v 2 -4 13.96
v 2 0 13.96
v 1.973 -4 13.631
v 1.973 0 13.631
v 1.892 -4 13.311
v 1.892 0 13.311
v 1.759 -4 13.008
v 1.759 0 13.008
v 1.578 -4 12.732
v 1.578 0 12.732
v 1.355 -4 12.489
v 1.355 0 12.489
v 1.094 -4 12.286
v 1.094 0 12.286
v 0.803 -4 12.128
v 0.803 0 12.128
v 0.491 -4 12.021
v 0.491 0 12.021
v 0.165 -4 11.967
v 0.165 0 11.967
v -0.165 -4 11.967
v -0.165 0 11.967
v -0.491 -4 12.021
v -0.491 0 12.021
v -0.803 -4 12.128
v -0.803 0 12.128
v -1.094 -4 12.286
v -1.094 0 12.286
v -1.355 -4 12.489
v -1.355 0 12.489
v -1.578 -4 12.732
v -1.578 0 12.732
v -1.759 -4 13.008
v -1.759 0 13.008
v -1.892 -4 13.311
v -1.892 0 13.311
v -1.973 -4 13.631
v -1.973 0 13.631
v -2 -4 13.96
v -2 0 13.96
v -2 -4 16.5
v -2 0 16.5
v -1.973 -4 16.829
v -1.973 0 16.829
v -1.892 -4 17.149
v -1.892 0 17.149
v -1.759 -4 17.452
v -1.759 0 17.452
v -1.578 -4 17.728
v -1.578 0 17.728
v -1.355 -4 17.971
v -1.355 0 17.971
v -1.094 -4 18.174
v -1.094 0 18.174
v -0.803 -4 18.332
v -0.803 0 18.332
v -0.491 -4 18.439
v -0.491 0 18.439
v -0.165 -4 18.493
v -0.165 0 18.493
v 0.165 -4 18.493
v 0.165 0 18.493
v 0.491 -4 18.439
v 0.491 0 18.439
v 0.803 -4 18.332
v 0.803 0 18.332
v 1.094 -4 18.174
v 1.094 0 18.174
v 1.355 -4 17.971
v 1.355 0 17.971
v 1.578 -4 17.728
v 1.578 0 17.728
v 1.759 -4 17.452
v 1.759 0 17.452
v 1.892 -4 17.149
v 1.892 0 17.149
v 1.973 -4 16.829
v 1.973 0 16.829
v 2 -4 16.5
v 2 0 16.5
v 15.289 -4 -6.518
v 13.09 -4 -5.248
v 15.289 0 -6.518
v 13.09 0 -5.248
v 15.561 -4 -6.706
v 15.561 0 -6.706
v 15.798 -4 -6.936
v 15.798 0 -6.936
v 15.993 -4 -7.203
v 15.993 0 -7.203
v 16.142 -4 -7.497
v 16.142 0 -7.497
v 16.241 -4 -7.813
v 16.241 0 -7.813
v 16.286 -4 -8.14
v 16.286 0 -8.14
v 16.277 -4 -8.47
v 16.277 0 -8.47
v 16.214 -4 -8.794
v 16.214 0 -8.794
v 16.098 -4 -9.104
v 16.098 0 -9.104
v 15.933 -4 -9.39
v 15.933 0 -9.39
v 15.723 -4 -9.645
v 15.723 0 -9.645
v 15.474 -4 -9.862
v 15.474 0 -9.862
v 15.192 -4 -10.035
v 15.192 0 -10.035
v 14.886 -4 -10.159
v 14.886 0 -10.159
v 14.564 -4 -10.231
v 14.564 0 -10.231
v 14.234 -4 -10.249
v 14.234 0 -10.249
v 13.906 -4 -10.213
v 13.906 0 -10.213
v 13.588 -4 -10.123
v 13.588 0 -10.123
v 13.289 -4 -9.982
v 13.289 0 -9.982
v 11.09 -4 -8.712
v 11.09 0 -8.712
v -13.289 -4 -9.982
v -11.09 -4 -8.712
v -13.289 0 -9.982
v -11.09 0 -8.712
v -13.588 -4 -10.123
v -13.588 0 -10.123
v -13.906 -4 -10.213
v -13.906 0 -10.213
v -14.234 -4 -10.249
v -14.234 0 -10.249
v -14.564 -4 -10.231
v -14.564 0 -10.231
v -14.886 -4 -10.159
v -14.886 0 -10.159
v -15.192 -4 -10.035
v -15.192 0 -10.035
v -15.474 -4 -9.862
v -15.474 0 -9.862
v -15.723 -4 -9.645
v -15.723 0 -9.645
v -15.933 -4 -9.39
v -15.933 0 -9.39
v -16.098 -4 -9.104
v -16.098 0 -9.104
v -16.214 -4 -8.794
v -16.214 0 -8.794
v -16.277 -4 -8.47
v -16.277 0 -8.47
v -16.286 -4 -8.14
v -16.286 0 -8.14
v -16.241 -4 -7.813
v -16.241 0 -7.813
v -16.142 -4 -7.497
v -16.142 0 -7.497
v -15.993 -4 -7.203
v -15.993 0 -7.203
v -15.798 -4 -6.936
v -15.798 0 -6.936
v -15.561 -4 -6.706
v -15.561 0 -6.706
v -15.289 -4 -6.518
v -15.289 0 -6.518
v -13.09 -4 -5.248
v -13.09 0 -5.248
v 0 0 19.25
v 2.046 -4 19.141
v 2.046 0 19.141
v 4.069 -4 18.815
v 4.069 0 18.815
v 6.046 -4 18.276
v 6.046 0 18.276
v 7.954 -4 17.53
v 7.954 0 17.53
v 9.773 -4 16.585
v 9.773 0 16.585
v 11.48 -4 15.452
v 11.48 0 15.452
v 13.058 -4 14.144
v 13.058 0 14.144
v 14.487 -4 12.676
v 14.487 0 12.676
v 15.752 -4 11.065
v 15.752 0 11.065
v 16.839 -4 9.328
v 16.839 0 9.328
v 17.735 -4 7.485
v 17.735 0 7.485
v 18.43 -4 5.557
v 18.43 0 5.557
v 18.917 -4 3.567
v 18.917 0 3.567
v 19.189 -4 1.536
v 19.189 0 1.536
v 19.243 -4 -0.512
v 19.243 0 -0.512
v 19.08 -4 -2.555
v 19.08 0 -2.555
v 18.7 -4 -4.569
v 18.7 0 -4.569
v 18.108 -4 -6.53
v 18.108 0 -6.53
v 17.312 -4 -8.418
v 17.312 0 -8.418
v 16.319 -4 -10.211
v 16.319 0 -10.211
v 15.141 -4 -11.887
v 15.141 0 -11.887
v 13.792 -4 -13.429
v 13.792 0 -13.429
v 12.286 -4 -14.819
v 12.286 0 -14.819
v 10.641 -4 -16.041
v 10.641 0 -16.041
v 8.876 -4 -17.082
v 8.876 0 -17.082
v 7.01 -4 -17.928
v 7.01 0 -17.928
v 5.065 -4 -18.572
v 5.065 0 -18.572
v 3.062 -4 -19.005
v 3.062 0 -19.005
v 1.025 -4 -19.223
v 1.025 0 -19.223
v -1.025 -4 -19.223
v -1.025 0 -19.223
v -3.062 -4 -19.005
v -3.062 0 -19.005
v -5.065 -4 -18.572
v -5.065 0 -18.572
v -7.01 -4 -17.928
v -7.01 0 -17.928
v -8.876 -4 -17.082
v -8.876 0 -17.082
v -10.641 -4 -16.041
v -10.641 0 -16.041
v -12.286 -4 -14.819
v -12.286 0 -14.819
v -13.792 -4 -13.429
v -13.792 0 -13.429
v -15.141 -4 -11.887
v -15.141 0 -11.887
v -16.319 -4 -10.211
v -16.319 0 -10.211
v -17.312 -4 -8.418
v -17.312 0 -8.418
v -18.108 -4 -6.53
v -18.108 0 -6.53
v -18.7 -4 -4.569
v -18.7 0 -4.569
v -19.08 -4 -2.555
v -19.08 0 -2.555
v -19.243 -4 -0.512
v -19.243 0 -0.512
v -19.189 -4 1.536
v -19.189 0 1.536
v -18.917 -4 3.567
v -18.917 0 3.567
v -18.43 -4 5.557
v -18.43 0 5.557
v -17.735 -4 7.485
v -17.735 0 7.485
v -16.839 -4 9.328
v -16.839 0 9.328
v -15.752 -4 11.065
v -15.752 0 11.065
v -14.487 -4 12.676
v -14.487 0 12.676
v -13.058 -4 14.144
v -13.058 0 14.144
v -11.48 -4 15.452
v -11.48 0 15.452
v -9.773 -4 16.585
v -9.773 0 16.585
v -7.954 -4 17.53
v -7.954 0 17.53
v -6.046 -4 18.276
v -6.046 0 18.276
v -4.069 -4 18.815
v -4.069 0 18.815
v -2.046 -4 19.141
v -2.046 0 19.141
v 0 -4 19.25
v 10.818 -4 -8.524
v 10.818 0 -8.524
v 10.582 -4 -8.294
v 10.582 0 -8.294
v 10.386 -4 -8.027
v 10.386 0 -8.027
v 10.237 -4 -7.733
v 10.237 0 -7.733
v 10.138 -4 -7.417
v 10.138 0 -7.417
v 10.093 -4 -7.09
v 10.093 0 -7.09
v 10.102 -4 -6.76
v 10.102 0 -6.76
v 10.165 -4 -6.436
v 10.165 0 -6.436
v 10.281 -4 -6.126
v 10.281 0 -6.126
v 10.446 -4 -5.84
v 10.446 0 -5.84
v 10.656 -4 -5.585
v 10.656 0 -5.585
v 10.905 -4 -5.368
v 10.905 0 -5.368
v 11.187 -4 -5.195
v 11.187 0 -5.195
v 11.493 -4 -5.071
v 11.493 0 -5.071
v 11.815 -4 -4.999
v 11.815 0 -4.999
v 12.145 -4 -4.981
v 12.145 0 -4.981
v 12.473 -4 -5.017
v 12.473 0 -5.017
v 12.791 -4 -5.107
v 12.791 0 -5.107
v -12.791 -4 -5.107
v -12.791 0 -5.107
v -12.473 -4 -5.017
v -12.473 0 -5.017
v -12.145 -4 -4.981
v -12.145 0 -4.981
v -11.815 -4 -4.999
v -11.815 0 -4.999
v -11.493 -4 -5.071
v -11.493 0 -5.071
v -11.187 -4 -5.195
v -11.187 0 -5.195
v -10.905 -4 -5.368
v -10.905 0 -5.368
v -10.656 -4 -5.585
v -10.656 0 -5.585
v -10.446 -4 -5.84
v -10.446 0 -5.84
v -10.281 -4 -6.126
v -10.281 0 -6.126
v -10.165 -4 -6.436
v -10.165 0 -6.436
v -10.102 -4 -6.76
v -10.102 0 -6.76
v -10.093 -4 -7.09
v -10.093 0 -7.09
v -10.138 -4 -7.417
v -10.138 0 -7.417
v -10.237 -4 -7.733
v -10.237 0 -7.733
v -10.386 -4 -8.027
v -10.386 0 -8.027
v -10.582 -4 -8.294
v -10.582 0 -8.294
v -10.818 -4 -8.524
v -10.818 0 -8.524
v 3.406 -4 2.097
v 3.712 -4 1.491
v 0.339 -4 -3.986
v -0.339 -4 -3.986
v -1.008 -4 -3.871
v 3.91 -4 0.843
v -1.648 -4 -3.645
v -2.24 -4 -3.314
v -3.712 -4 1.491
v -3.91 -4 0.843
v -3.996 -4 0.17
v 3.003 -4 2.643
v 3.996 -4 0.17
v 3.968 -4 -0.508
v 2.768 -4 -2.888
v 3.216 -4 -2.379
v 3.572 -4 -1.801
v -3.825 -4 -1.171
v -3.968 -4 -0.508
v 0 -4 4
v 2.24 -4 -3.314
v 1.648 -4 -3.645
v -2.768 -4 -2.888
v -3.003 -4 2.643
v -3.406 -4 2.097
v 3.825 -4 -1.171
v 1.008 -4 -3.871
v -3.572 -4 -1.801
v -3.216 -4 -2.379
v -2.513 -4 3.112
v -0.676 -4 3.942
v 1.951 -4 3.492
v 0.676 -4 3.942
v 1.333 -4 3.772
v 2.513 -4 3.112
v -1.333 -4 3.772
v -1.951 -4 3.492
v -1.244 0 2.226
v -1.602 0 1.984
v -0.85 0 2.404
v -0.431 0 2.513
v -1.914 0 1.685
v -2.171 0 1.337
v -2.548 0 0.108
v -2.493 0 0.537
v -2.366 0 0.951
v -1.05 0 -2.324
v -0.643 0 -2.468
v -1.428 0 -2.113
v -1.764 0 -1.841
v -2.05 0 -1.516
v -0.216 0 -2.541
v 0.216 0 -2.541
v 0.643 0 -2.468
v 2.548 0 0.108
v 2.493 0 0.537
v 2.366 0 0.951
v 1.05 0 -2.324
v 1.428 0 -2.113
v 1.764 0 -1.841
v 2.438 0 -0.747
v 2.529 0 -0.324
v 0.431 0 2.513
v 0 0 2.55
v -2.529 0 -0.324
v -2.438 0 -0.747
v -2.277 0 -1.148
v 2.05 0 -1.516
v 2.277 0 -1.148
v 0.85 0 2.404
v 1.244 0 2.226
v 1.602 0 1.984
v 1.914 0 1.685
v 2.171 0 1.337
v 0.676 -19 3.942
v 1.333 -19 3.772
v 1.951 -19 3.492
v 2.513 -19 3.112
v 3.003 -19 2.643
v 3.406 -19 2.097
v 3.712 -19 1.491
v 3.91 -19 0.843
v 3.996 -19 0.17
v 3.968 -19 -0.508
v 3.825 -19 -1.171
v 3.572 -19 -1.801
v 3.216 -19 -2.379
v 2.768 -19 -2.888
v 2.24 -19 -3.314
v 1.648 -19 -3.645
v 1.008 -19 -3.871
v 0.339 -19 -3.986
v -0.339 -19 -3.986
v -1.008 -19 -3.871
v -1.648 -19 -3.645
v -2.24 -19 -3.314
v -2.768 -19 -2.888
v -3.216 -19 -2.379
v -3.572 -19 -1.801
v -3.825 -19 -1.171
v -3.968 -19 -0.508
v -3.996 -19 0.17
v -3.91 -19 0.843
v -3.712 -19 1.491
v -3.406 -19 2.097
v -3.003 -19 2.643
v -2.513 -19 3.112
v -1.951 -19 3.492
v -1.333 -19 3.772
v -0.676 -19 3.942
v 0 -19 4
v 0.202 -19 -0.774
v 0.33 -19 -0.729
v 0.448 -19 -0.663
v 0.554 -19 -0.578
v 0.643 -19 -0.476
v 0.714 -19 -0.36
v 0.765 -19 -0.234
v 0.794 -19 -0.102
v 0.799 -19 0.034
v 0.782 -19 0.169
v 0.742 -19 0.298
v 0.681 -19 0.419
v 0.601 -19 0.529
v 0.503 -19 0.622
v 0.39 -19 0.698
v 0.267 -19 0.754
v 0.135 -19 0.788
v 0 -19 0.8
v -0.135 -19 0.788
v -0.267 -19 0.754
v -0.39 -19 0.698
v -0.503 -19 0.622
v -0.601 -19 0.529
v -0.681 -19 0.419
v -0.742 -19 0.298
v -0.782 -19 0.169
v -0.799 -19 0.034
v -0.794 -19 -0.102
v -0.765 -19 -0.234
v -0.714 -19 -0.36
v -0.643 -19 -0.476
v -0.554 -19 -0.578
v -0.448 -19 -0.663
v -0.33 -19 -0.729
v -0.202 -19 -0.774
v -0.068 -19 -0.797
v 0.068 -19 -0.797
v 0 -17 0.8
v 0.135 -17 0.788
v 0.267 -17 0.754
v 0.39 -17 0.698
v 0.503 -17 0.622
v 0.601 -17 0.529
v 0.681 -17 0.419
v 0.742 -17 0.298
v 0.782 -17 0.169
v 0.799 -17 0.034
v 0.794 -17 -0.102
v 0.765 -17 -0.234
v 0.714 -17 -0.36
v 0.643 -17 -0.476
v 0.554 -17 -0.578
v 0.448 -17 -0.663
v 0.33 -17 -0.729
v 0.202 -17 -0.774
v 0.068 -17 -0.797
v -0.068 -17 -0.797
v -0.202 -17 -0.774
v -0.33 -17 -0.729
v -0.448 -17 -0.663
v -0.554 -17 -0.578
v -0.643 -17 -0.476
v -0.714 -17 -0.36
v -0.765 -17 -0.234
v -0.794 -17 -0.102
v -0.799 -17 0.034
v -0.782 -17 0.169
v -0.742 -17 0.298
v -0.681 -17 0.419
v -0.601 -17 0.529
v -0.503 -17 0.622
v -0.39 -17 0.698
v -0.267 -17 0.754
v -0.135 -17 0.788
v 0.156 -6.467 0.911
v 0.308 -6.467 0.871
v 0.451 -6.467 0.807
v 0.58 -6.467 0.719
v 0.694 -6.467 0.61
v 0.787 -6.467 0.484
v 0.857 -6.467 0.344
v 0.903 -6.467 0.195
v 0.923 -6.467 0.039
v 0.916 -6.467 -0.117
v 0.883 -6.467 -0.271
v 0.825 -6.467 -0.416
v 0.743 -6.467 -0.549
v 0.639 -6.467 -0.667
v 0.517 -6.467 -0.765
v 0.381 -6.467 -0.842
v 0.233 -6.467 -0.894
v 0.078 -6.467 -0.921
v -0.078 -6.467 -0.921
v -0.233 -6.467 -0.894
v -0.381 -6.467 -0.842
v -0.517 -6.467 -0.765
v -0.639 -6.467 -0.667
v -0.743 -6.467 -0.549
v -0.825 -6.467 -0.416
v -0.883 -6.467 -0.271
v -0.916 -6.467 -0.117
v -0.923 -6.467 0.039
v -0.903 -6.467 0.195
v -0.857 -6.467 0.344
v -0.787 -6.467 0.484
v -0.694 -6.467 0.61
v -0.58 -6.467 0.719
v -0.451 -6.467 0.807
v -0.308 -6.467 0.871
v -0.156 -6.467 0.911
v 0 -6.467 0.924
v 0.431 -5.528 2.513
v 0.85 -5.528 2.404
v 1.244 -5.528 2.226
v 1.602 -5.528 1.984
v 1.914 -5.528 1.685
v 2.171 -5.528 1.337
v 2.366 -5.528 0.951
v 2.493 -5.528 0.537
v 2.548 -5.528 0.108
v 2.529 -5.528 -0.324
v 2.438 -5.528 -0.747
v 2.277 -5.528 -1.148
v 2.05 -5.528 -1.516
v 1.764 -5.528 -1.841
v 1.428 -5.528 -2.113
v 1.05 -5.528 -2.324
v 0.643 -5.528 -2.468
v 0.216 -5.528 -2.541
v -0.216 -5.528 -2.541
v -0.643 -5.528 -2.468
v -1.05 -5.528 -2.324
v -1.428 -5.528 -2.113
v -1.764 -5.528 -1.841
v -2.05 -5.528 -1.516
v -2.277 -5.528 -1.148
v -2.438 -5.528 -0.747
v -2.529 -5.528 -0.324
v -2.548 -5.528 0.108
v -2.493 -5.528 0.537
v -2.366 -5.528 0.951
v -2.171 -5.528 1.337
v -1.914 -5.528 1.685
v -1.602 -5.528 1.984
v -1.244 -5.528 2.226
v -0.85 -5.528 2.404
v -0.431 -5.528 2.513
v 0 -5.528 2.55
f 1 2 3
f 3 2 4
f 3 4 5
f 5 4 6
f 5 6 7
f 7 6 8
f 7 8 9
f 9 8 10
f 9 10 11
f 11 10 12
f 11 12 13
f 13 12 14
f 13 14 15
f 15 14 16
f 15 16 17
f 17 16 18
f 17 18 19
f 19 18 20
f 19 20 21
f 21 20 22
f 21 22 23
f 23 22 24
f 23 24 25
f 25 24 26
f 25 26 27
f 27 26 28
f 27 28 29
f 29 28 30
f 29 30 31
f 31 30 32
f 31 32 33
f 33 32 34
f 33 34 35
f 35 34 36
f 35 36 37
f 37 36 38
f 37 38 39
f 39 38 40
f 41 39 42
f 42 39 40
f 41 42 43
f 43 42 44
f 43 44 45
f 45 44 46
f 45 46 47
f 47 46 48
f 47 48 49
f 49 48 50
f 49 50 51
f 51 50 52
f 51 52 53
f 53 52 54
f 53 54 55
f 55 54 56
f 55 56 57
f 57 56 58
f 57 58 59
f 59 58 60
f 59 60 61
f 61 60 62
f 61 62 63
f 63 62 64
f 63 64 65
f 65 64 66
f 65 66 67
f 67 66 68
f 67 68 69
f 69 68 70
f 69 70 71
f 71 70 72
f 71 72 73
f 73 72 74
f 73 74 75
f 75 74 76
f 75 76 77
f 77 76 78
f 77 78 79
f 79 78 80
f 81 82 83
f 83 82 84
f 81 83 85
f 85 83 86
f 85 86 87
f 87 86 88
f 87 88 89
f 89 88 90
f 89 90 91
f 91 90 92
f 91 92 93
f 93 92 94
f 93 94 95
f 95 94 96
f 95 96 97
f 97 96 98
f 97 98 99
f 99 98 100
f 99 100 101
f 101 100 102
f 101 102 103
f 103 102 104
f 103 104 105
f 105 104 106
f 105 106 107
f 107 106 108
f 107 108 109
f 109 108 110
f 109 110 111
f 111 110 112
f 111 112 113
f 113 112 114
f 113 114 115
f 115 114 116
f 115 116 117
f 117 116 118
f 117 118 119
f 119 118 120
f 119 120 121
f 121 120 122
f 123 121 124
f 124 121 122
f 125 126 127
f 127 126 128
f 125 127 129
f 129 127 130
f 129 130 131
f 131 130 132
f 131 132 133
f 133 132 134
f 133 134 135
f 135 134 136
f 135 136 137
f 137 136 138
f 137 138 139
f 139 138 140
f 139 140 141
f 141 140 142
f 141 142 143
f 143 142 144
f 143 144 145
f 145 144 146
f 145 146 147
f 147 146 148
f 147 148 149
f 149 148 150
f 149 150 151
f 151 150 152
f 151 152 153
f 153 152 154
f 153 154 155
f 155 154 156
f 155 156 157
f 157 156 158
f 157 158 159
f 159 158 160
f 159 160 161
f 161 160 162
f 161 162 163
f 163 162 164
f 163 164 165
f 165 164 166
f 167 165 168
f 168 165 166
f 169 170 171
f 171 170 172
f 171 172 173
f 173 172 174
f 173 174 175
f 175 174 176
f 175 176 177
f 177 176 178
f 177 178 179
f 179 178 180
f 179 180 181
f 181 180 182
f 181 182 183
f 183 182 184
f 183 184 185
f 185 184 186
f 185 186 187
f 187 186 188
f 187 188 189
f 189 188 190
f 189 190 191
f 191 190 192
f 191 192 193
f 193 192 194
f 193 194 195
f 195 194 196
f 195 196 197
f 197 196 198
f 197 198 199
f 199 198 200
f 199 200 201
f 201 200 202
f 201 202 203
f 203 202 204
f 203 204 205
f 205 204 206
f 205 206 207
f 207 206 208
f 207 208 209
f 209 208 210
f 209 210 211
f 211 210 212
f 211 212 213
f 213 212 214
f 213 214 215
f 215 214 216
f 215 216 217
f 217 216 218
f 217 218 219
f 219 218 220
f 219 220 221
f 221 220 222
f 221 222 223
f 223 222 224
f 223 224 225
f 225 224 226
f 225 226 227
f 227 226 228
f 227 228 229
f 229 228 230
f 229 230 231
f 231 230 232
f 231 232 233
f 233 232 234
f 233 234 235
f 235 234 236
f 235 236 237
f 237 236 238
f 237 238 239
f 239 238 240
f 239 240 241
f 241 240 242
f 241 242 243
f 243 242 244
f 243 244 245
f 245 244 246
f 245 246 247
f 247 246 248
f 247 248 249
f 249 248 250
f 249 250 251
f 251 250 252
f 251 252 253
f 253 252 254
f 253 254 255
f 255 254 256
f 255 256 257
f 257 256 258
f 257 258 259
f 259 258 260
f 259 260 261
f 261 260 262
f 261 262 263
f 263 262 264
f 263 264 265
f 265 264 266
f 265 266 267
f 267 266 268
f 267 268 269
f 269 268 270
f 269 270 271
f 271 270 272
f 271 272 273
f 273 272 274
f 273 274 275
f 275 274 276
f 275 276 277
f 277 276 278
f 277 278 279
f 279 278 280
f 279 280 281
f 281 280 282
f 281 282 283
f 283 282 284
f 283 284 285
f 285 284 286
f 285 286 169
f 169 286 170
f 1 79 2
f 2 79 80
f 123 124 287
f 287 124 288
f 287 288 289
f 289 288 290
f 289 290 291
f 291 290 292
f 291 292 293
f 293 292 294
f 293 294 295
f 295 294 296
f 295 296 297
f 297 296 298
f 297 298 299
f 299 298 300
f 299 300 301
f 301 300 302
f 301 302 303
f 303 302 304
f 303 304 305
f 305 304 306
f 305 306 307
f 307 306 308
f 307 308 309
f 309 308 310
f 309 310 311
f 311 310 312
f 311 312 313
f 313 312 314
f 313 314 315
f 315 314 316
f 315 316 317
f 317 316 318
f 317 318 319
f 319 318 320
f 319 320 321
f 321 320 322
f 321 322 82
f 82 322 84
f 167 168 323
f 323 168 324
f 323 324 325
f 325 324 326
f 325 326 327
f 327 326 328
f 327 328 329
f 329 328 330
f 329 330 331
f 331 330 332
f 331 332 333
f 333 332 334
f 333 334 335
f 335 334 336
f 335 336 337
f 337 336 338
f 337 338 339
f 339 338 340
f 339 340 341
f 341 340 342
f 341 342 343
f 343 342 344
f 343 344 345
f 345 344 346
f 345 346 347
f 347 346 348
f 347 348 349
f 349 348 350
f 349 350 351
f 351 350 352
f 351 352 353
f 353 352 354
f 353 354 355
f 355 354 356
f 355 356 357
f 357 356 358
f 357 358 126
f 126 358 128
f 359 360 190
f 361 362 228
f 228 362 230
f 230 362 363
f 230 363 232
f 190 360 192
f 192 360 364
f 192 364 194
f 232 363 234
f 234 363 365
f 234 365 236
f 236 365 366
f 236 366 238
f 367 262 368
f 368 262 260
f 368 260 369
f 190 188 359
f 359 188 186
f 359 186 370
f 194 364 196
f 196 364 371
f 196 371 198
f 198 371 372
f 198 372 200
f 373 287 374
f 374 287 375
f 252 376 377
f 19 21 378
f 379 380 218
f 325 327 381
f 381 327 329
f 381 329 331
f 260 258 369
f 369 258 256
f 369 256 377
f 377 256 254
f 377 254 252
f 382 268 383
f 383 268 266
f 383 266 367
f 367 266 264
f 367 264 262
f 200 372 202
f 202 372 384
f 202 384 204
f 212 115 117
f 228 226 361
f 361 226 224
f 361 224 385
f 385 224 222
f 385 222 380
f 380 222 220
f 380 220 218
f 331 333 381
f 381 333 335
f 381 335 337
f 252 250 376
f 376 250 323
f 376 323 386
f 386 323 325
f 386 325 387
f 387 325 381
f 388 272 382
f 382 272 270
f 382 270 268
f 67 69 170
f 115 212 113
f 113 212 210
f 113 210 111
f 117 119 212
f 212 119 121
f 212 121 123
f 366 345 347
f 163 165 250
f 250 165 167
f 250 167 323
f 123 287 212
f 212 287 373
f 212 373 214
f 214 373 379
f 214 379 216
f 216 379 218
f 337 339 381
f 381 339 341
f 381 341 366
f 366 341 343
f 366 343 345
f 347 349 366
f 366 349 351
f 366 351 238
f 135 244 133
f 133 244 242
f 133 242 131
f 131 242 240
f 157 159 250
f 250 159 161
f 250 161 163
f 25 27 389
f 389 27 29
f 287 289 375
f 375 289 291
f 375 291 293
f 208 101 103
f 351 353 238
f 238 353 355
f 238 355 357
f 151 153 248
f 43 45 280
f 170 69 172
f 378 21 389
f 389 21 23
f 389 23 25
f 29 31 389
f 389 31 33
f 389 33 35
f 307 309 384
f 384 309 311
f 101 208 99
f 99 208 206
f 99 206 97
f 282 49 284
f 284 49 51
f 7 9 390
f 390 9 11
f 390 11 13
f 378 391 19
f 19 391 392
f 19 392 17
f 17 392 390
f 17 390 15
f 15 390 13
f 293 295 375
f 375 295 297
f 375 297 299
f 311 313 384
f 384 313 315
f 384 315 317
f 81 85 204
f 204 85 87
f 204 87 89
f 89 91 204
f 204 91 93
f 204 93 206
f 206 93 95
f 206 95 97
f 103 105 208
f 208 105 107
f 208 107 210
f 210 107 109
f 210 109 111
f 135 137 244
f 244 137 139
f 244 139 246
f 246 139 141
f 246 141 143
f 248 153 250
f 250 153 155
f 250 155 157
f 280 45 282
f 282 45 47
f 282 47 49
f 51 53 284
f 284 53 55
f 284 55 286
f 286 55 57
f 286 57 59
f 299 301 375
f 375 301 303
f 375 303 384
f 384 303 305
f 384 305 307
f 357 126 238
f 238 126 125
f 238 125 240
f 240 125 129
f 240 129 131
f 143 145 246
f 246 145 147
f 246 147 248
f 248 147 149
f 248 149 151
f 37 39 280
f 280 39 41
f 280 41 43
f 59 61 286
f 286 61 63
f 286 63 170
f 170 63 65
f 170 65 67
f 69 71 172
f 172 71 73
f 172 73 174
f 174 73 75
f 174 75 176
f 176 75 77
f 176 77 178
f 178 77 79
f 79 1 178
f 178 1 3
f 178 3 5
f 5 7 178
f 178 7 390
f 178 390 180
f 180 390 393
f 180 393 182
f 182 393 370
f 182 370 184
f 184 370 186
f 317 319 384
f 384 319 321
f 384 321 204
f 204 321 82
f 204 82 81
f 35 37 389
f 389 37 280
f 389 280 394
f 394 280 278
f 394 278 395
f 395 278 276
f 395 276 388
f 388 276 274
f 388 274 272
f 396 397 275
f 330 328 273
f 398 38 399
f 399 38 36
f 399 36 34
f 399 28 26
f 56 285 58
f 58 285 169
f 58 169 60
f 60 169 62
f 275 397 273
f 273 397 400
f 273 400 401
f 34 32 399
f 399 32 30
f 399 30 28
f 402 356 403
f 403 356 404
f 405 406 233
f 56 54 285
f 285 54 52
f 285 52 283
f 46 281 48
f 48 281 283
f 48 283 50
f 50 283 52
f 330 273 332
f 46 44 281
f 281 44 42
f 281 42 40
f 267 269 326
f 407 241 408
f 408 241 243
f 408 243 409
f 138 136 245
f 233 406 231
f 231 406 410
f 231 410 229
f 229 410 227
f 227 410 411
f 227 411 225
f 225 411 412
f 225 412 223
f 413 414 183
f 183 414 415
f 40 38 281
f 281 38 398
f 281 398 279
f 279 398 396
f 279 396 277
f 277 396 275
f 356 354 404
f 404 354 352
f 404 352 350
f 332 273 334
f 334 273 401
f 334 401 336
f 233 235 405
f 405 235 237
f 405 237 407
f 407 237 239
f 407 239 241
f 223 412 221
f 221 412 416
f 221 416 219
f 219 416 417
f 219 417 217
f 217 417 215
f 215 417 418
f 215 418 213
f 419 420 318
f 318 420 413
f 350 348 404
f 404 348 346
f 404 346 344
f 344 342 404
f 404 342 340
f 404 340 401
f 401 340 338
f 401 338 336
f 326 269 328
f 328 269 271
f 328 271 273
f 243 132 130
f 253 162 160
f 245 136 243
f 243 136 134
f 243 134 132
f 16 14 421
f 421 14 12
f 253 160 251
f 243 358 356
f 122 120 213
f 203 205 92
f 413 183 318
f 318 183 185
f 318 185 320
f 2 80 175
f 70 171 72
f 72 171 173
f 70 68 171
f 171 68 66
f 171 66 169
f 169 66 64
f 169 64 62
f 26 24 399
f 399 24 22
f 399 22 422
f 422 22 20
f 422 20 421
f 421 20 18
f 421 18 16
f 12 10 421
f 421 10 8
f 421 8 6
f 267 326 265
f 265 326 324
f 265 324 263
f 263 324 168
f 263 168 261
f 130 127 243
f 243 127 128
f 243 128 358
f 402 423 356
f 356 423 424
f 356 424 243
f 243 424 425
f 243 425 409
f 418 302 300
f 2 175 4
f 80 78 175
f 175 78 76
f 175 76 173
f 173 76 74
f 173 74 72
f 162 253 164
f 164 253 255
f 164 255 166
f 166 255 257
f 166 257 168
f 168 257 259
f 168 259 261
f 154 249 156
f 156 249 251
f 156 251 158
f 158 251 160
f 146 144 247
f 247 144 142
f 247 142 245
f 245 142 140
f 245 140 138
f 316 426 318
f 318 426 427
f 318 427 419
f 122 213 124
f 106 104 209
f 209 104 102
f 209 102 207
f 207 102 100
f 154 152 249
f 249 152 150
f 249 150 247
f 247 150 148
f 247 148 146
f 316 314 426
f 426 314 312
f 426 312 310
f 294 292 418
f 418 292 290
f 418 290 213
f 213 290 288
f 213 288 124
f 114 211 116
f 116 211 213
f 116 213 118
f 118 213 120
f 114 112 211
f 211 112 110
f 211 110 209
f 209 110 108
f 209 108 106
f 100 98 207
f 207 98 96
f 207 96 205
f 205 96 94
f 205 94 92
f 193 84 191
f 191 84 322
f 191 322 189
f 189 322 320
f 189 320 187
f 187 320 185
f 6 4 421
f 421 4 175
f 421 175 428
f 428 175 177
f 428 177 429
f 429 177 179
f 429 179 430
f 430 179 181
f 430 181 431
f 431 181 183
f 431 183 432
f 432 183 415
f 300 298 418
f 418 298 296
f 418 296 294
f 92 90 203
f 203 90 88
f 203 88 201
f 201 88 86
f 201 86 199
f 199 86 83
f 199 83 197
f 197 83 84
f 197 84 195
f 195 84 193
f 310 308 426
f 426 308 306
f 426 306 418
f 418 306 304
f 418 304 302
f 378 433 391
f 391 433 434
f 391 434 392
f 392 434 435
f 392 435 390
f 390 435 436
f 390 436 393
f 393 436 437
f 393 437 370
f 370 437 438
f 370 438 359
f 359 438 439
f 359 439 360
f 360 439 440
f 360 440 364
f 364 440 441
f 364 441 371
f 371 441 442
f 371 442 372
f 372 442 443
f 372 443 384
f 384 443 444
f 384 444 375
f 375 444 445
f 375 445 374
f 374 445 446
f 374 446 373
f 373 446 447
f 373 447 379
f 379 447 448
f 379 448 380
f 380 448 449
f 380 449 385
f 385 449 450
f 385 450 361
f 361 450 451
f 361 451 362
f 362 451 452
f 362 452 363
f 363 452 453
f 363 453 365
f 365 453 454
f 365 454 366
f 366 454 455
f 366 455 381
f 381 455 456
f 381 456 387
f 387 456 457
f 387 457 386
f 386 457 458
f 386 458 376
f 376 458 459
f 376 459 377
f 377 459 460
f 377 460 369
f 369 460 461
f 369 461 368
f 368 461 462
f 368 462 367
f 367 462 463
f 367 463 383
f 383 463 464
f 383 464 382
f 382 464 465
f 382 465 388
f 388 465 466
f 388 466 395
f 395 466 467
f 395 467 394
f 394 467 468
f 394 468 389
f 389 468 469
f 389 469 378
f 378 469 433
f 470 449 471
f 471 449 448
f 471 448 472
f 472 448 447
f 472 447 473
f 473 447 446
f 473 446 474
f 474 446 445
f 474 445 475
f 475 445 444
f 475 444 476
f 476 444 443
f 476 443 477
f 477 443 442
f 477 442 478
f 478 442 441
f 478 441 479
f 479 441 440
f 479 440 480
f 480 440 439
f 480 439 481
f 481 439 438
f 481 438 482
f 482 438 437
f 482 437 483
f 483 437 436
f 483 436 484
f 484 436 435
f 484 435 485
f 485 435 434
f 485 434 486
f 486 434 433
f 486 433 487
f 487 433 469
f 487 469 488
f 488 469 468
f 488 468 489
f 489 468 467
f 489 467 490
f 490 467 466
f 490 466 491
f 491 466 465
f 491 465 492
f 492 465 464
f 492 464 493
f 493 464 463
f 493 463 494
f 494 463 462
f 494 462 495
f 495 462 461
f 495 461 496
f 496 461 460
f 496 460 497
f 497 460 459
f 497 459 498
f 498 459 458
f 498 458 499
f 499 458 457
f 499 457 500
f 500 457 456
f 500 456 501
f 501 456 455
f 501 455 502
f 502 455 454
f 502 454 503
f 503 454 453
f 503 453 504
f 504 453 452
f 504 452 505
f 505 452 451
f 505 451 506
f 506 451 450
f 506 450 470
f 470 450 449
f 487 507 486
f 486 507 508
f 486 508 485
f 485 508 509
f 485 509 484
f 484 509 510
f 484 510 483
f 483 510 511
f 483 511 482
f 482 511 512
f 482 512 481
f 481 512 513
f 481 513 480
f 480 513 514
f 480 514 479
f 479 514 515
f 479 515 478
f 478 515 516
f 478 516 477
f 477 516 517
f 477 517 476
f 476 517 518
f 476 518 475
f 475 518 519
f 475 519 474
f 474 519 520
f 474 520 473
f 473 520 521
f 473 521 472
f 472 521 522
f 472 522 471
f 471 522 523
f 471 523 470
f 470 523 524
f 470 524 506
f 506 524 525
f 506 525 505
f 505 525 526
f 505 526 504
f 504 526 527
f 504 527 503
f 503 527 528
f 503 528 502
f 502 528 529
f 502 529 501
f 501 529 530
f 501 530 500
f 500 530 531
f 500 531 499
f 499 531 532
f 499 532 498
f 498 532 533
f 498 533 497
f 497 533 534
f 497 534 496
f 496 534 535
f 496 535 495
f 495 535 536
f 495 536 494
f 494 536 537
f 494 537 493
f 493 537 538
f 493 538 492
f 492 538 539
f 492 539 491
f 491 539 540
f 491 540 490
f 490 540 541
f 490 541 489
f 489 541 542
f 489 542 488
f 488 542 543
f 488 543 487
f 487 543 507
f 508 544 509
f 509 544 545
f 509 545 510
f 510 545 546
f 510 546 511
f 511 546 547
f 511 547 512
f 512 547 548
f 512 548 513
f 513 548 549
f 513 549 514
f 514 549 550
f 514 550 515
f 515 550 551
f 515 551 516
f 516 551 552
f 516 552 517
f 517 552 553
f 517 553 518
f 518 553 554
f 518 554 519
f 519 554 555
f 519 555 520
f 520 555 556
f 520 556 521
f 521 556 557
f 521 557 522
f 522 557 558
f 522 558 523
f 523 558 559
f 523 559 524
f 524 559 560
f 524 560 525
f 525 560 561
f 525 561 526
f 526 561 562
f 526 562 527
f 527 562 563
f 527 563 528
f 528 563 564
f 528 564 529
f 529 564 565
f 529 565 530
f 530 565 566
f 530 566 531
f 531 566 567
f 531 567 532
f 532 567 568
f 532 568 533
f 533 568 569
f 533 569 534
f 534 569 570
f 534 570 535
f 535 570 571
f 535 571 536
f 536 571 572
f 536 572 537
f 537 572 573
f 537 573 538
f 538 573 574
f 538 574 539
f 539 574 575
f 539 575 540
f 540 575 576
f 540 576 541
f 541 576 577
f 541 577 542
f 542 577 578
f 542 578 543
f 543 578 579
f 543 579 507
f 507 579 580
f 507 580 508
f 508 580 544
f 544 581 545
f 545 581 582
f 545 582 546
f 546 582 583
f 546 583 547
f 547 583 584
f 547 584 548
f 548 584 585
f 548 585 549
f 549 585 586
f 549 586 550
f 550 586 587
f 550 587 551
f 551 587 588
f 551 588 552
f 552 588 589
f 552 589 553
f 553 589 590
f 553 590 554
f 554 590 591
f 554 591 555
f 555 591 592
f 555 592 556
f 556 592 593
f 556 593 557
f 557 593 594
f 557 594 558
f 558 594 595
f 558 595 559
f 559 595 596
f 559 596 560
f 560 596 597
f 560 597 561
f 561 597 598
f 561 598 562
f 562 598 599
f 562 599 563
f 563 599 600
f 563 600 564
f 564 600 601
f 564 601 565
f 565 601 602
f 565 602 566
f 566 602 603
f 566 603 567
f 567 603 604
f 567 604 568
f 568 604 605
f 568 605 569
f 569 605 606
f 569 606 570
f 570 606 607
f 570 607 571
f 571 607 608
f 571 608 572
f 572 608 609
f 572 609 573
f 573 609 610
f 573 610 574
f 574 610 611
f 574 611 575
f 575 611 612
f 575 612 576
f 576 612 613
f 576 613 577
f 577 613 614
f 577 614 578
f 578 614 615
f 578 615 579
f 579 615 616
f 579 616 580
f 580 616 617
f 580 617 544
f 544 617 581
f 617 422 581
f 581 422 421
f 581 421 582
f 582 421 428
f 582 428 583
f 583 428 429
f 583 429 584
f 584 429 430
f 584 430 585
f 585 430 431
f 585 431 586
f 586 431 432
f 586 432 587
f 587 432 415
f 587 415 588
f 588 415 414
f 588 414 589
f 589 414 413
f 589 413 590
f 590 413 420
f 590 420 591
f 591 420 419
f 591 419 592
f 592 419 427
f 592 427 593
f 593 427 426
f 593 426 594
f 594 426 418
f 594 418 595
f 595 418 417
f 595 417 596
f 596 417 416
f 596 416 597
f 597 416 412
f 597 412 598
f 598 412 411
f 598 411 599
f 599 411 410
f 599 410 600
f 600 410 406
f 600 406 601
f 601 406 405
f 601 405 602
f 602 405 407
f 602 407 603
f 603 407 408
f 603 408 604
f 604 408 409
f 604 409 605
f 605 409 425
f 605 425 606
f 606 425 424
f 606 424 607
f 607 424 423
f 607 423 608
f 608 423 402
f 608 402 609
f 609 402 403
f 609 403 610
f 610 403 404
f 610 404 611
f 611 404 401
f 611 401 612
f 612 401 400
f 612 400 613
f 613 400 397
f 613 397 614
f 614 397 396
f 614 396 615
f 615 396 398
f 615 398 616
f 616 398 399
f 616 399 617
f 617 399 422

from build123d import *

# Parameters (mm, degrees)
SKETCH1_R           = 19.25
SKETCH1_R_2         = 4
BOSS_EXTRUDE1_DEPTH = 4
SKETCH1_4_R         = 4
BOSS_EXTRUDE2_DEPTH = 19


with BuildPart() as part:
    # Sketch1 → Boss-Extrude1 (new body)
    with BuildSketch(Plane(origin=(0, 0, 0), x_dir=(1, 0, 0), z_dir=(0, 1, 0))):
        Circle(SKETCH1_R)
        with BuildLine():
            Line((-13.089714637, 5.247949192), (-15.289419162, 6.517949192))
            ThreePointArc((-15.289419162, 6.517949192), (-16.02146997, 9.25), (-13.289419162, 9.982050808))
            Line((-13.289419162, 9.982050808), (-11.089714637, 8.712050808))
            ThreePointArc((-11.089714637, 8.712050808), (-10.357663829, 5.98), (-13.089714637, 5.247949192))
        make_face(mode=Mode.SUBTRACT)
        with BuildLine():
            Line((11.089714637, 8.712050808), (13.289419162, 9.982050808))
            ThreePointArc((13.289419162, 9.982050808), (16.02146997, 9.25), (15.289419162, 6.517949192))
            Line((15.289419162, 6.517949192), (13.089714637, 5.247949192))
            ThreePointArc((13.089714637, 5.247949192), (10.357663829, 5.98), (11.089714637, 8.712050808))
        make_face(mode=Mode.SUBTRACT)
        with BuildLine():
            Line((2, -13.96), (2, -16.5))
            ThreePointArc((2, -16.5), (0, -18.5), (-2, -16.5))
            Line((-2, -16.5), (-2, -13.96))
            ThreePointArc((-2, -13.96), (0, -11.96), (2, -13.96))
        make_face(mode=Mode.SUBTRACT)
        Circle(SKETCH1_R_2, mode=Mode.SUBTRACT)
    extrude(amount=-BOSS_EXTRUDE1_DEPTH)

    # Sketch1<4> → Boss-Extrude2 (add)
    with BuildSketch(Plane(origin=(0, 0, 0), x_dir=(1, 0, 0), z_dir=(0, 1, 0))):
        Circle(SKETCH1_4_R)
    extrude(amount=-BOSS_EXTRUDE2_DEPTH)

    # Sketch2 → Cut-Revolve4 (revolve, cut)
    with BuildSketch(Plane(origin=(0, 0, 0), x_dir=(0, 0, -1), z_dir=(1, 0, 0))):
        Polygon((0, -19), (0.8, -19), (0.8, -17), (1, 0), (0, 0), align=None)
    revolve(axis=Axis((0, 0, 0), (0, -1, 0)), mode=Mode.SUBTRACT)

    # Sketch5 → Cut-Revolve8 (revolve, cut)
    with BuildSketch(Plane.XY):
        Polygon((0, -7), (-2.55, -5.527756814), (-2.55, 0), (0, 0), align=None)
    revolve(axis=Axis((0, 0, 0), (0, -1, 0)), mode=Mode.SUBTRACT)


solid = part.part
